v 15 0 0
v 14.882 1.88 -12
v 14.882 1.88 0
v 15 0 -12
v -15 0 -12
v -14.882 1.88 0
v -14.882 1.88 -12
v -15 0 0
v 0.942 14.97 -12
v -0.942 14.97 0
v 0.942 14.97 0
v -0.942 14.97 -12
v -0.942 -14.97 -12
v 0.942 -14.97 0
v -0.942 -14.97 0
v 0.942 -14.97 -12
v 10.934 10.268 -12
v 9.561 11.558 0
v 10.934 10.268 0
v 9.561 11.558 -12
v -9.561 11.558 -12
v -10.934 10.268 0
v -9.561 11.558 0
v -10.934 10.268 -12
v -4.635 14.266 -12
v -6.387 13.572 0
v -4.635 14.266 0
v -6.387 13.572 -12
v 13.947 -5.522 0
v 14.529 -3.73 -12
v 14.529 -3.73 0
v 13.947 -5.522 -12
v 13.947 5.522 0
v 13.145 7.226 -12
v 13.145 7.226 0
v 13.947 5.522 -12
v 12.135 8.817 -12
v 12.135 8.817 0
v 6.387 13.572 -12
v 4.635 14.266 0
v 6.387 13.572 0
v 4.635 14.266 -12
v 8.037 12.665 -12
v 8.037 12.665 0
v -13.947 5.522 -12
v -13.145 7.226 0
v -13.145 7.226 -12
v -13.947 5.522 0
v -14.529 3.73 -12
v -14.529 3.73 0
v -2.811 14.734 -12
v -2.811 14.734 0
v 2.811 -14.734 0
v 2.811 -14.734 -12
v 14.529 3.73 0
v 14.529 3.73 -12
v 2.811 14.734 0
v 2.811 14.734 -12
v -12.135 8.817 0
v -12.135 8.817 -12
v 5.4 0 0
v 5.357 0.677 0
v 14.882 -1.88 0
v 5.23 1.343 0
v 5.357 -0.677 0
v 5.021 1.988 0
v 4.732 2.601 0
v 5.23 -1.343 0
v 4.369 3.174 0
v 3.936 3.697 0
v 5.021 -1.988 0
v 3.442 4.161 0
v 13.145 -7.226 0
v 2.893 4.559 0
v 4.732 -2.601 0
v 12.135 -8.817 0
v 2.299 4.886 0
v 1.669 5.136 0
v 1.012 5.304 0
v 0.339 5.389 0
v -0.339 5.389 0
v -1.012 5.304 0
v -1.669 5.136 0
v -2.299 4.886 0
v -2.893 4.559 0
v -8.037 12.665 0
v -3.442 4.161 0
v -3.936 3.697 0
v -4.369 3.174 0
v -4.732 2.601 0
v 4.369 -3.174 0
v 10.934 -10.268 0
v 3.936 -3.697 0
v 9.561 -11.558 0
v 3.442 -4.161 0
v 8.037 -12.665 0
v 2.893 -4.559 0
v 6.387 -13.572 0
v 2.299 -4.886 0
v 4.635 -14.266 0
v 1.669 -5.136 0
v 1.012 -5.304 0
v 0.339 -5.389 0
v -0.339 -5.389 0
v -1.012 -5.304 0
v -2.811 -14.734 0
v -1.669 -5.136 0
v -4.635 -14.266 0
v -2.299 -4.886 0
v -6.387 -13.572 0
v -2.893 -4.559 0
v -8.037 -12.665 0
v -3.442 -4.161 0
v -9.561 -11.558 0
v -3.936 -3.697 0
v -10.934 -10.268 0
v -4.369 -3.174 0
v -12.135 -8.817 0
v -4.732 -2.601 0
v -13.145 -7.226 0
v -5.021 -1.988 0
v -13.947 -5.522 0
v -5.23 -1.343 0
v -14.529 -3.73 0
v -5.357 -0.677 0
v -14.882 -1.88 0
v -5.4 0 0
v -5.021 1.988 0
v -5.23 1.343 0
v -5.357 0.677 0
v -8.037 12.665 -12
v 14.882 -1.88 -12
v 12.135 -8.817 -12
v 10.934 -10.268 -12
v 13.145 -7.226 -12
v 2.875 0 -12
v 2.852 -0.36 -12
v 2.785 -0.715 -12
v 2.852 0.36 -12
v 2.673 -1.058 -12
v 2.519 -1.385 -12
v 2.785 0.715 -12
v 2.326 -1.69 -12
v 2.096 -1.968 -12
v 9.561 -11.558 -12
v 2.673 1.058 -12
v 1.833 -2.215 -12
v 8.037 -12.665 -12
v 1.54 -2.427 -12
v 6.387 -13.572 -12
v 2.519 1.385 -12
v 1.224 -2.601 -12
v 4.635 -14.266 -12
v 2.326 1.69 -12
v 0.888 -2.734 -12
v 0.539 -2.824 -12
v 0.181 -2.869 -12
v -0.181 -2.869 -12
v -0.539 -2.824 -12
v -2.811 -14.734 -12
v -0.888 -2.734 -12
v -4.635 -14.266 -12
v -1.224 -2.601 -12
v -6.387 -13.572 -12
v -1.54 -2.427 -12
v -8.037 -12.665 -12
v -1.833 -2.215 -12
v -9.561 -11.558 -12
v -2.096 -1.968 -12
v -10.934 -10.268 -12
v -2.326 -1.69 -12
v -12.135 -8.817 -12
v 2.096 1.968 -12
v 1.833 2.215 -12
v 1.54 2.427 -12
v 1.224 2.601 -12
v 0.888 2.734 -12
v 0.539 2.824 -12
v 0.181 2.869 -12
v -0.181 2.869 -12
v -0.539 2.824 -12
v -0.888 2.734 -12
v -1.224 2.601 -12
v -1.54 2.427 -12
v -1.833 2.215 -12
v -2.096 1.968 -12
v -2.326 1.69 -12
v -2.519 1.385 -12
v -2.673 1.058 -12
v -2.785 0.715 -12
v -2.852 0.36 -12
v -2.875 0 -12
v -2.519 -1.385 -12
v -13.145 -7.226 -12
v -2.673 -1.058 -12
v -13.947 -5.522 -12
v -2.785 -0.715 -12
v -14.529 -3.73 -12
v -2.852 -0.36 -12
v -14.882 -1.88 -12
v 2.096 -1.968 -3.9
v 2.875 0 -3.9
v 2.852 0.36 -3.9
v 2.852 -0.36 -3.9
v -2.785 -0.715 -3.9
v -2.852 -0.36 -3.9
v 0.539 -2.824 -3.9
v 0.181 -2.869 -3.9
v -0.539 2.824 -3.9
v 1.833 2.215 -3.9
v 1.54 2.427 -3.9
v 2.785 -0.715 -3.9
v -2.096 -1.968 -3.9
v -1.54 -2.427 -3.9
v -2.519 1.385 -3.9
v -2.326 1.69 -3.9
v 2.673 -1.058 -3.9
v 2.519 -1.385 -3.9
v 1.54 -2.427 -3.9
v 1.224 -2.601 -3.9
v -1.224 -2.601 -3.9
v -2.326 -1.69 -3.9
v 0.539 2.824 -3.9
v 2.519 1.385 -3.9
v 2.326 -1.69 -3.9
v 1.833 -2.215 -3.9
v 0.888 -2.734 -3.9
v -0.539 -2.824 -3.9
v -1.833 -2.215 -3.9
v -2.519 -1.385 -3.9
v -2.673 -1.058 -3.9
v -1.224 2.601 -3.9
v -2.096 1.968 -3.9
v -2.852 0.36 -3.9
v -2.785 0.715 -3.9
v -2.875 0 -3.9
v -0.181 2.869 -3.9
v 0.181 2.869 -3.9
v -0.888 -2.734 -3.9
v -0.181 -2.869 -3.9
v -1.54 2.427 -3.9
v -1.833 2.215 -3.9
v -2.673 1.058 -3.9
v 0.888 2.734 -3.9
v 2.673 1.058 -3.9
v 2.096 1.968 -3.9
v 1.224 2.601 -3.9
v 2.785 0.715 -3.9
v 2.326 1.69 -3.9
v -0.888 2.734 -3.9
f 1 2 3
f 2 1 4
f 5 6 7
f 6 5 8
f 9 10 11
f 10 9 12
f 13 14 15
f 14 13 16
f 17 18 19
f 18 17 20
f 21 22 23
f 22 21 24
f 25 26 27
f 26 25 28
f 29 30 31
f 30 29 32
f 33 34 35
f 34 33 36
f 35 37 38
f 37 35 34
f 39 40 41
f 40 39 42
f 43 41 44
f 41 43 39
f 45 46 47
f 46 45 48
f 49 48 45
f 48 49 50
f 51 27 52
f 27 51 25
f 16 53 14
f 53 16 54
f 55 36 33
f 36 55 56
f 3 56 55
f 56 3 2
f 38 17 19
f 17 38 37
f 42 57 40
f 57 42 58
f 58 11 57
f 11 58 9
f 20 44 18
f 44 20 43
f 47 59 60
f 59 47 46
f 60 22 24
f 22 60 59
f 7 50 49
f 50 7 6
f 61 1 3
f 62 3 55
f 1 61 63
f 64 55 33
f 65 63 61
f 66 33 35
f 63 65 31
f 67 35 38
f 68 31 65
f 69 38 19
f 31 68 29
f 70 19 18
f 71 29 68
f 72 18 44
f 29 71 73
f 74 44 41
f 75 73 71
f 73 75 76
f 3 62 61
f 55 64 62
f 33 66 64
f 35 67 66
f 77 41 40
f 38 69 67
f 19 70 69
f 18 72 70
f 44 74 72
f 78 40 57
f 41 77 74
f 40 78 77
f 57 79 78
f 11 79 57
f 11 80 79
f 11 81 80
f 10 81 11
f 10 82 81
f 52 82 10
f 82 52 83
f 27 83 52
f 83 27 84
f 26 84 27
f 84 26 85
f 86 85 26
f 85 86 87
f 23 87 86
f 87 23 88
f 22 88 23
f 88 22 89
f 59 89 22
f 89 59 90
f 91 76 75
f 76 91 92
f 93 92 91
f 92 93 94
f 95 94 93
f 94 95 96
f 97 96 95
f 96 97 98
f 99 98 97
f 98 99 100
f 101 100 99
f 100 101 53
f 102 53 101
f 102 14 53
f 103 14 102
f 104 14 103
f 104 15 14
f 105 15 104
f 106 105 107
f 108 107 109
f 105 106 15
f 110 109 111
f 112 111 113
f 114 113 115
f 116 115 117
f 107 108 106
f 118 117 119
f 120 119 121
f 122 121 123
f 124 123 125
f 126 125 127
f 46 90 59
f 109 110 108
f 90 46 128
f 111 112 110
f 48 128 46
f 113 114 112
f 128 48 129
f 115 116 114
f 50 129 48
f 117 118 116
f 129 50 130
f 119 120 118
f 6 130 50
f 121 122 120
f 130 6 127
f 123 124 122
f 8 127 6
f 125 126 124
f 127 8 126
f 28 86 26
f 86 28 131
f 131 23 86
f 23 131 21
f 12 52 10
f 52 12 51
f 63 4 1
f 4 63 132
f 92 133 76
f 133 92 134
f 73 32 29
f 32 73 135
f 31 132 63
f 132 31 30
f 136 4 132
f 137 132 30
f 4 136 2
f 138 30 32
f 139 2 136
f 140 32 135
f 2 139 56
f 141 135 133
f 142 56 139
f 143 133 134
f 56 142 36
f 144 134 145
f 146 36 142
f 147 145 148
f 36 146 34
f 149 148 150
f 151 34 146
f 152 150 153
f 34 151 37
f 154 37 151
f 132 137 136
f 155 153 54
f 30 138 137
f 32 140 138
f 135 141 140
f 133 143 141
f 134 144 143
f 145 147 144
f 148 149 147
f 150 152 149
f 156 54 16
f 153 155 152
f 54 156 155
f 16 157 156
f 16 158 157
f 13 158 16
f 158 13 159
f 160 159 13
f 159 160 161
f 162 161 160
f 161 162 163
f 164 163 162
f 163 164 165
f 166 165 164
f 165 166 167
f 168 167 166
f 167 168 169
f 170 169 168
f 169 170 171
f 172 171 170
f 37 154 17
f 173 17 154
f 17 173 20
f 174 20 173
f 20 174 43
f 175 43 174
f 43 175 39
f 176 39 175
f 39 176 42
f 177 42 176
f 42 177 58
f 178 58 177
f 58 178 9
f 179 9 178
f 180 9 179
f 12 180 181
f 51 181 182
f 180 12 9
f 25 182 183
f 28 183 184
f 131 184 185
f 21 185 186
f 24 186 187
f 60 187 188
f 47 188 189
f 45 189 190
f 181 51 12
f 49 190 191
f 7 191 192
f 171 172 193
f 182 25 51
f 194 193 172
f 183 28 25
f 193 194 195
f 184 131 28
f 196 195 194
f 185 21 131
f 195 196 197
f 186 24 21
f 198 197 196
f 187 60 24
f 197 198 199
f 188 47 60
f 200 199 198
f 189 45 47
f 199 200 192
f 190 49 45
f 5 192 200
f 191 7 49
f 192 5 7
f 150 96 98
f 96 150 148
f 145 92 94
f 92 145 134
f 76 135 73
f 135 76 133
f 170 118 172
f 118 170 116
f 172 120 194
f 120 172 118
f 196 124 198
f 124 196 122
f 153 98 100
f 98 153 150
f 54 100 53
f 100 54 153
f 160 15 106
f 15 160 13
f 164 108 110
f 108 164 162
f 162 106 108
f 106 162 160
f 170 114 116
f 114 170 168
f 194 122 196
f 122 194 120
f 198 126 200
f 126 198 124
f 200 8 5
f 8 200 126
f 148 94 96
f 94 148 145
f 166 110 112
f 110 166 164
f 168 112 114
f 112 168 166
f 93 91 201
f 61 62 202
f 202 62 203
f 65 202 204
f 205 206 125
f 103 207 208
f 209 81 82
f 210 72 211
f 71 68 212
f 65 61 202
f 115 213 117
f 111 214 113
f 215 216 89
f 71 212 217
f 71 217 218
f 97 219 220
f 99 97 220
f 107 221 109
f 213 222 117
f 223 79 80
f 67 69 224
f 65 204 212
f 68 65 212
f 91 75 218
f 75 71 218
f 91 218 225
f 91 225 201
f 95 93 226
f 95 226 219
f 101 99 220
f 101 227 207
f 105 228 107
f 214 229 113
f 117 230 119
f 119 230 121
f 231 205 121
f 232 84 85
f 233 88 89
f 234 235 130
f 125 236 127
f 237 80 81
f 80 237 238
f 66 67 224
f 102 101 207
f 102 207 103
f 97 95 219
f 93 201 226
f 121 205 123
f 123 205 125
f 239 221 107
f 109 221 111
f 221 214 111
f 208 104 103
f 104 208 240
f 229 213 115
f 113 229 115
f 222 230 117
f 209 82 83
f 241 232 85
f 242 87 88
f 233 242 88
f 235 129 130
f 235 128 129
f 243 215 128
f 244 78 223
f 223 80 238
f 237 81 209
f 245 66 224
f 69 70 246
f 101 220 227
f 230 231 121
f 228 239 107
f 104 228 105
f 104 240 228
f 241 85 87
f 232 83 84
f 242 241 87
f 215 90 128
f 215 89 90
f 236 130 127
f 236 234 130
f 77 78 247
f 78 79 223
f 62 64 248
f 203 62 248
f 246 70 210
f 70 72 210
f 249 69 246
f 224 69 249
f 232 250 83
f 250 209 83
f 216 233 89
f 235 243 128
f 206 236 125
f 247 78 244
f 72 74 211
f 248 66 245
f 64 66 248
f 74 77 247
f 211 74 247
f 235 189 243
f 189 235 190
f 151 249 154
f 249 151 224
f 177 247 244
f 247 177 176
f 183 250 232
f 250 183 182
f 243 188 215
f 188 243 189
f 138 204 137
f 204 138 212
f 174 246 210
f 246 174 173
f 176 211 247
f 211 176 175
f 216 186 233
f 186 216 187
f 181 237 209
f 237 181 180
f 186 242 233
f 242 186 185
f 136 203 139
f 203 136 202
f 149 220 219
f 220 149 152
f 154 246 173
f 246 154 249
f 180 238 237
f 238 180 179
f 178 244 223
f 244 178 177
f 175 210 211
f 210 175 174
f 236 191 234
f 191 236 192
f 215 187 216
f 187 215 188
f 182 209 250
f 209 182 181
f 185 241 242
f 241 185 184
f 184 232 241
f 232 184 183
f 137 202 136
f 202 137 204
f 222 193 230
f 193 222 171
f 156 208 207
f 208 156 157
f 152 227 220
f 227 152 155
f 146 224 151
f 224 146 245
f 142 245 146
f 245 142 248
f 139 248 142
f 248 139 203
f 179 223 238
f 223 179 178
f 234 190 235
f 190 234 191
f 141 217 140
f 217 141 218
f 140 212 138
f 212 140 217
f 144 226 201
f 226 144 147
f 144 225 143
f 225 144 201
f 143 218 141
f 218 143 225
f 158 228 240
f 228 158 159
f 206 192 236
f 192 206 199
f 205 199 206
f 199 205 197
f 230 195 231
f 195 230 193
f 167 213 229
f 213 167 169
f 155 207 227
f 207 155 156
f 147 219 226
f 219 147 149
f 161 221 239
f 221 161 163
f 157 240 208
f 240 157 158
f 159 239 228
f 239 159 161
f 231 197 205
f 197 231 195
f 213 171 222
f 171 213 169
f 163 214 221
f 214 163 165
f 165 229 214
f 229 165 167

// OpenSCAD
$fn = 50;


difference() {
	union() {
		translate(v = [0, 0, -12.0000000000]) {
			cylinder(h = 12, r = 15.0000000000);
		}
		translate(v = [0, 0, -12.0000000000]) {
			cylinder(h = 12, r = 2.8750000000);
		}
	}
	union() {
		translate(v = [0, 0, 0]) {
			rotate(a = [0, 0, 0]) {
				difference() {
					union() {
						translate(v = [0, 0, -12.0000000000]) {
							cylinder(h = 12, r = 2.6000000000);
						}
						translate(v = [0, 0, -3.9000000000]) {
							cylinder(h = 3.9000000000, r1 = 2.8750000000, r2 = 5.4000000000);
						}
						translate(v = [0, 0, -12.0000000000]) {
							cylinder(h = 12, r = 2.8750000000);
						}
						translate(v = [0, 0, -12.0000000000]) {
							cylinder(h = 12, r = 2.6000000000);
						}
					}
					union();
				}
			}
		}
	}
}
